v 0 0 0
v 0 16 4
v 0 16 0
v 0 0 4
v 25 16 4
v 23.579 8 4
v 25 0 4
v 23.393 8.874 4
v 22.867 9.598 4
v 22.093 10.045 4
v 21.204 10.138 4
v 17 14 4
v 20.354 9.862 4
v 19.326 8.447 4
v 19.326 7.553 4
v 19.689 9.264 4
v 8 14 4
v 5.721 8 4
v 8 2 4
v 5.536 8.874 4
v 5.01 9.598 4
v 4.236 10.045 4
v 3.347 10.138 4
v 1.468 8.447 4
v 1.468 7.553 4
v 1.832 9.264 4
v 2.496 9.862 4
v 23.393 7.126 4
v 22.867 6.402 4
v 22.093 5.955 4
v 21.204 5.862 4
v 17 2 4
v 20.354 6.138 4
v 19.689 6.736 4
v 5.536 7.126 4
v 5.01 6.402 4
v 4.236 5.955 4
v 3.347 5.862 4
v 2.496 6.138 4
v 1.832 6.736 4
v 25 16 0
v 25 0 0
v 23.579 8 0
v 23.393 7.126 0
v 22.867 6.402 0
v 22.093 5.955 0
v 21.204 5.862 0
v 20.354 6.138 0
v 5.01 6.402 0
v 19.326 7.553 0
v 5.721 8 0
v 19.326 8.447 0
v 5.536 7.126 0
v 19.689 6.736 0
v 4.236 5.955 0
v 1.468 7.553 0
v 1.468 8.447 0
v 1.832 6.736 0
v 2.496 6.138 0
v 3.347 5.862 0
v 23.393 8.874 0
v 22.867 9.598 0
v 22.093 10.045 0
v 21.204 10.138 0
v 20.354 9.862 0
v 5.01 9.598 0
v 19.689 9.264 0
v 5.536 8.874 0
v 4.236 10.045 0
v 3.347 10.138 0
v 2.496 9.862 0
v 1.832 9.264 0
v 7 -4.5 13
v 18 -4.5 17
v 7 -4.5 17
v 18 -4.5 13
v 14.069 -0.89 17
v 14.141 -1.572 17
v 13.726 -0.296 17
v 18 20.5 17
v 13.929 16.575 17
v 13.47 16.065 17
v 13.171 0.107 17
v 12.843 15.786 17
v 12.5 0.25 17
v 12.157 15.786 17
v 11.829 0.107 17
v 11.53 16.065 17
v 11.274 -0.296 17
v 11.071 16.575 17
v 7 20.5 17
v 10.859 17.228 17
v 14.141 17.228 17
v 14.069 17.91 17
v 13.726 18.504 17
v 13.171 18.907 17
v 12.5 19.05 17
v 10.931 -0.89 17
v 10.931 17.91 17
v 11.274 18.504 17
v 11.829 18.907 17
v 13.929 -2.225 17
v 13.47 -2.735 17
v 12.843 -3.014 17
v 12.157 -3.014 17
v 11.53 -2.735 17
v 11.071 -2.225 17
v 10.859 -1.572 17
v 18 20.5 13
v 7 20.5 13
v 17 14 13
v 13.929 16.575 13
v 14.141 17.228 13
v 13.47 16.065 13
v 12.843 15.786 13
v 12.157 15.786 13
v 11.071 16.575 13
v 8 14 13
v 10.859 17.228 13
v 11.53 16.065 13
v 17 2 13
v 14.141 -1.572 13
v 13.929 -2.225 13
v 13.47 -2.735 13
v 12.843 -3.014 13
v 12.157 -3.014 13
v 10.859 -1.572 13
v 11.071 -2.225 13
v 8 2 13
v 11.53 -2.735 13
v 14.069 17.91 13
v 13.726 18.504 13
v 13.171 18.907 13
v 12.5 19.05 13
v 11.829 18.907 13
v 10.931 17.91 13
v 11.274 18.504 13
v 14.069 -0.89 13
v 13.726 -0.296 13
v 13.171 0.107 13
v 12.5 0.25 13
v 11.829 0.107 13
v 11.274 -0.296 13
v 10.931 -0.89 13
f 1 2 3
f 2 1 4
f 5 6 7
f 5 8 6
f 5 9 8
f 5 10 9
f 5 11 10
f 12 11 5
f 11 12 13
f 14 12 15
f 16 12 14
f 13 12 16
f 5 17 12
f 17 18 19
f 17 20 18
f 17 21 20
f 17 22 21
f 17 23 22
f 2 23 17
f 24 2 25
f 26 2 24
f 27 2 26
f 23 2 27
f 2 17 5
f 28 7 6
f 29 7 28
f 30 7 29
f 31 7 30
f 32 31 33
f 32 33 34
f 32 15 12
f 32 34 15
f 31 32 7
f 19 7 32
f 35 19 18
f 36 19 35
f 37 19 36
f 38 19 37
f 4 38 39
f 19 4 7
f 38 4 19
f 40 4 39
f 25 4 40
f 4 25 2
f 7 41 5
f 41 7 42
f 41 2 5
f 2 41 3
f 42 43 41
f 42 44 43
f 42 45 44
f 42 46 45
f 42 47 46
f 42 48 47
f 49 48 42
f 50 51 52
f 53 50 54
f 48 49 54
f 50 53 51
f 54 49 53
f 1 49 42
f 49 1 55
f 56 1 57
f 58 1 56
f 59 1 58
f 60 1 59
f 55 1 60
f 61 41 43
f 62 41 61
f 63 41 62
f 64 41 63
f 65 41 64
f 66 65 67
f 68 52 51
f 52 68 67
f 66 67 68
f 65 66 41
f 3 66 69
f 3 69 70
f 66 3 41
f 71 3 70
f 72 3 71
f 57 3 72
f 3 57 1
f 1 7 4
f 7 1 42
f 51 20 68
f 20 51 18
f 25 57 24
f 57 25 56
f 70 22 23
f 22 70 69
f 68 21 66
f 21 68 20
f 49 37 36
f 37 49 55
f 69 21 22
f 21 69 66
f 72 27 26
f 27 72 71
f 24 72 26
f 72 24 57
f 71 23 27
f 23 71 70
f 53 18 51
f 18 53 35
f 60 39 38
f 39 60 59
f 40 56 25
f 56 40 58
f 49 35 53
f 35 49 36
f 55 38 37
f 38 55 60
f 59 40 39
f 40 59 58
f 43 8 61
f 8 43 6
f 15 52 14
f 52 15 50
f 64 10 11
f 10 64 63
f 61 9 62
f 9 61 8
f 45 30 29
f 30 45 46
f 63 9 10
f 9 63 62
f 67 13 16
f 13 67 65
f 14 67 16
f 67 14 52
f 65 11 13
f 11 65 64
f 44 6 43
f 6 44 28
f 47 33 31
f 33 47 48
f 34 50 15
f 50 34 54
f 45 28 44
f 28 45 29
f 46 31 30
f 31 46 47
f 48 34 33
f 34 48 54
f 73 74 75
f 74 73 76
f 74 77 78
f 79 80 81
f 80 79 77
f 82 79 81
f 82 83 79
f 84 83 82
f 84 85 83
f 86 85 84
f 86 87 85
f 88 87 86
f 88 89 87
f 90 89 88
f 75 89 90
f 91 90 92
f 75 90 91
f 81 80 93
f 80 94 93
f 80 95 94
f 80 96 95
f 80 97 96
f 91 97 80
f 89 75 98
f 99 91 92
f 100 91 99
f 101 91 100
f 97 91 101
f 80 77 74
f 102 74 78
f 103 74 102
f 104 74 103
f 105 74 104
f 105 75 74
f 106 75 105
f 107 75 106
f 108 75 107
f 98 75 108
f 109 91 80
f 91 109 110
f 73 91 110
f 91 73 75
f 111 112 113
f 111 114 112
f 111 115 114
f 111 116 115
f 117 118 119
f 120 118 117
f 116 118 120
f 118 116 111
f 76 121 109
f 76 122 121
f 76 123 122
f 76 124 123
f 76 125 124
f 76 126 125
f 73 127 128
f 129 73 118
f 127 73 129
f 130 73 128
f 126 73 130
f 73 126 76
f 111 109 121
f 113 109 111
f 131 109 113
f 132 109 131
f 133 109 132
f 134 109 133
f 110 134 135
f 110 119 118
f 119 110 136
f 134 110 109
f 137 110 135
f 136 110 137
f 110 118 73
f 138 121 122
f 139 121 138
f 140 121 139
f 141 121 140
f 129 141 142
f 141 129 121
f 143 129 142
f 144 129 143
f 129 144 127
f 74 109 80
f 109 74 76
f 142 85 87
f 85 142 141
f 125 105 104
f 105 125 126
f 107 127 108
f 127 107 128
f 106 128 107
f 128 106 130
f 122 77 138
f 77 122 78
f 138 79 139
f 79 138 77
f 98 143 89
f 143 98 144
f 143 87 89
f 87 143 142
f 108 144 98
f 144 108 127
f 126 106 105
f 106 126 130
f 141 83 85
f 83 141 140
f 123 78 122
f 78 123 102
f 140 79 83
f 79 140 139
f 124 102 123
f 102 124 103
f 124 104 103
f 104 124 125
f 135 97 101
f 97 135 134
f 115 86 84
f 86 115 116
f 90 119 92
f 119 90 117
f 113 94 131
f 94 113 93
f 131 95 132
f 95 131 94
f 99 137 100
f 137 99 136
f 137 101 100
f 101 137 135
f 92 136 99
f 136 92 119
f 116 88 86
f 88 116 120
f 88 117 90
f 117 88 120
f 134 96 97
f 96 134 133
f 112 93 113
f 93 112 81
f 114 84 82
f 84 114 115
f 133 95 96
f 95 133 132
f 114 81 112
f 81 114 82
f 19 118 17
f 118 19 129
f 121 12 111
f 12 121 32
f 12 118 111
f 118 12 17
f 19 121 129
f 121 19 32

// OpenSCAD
WallThickness = 4;

BaseWidth = 25;
BaseDepth = 16;
BaseHoleDiameter = 4.3;

SensorToBaseHeight = 13;

SensorHoleDistance = 18.8;
SensorHoleDiameter = 3.3;
SensorWidth = 25;
SensorDepth = 11;

translate([BaseWidth/2-SensorDepth/2+1, 2, WallThickness-0.1])
cube(size=[SensorDepth-2, BaseDepth-4, SensorToBaseHeight], center=false);


difference() {
    cube(size=[BaseWidth, BaseDepth, WallThickness], center=false);
    translate([BaseWidth/7, BaseDepth/2, 0])
    cylinder(h=WallThickness, d=BaseHoleDiameter, center=false, $fn=15);
    translate([BaseWidth/7*6, BaseDepth/2, 0])
    cylinder(h=WallThickness, d=BaseHoleDiameter, center=false, $fn=15);
    
}


translate([BaseWidth/2+SensorDepth/2, BaseDepth/2-SensorWidth/2, SensorToBaseHeight])
rotate([0, 0, 90])
difference() {
    cube(size=[SensorWidth, SensorDepth, WallThickness], center=false);
    translate([(SensorWidth-SensorHoleDistance)/2, SensorDepth/2, 0])
    cylinder(h=WallThickness, d=SensorHoleDiameter, center=false, $fn=15);
    translate([(SensorWidth-SensorHoleDistance)/2+SensorHoleDistance, SensorDepth/2, 0])
    cylinder(h=WallThickness, d=SensorHoleDiameter, center=false, $fn=15);
}



/*
WallThickness = 1.5;
BaseHeight = 123+WallThickness*2;
BaseWidth = 101+WallThickness*2;
BaseDepth = 30;
CornerRadius = 3;

LCDWidth = 80.5;
LCDHeight = 50.5;
LCDTopOffset = 9+WallThickness;
LCDLeftOffset = 9+WallThickness;

ResetButtonDiameter = 6;
ResetButtonBottomOffet = 8.5+WallThickness;
ResetButtonLeftOffet = 70.5+WallThickness;

RotaryEncoderDiameter = 8;
RotaryEncoderBottomOffet = 19+WallThickness;
RotaryEncoderLeftOffet = 87.5+WallThickness;

CardButtonDiameter = 6;
CardButtonBottomOffet = 44.5+WallThickness;
CardButtonLeftOffet = 78.5+WallThickness;

TFCardHeight = 2;
TFCardWidth = 14;
TFCardBottomOffset = 15+WallThickness;
TFCardFrontOffset = 19+WallThickness;

MountingHoleDiameter = 5.5;

module RoundedRectangle($Width=BaseWidth, $Depth=BaseDepth, $Radius=CornerRadius) 
{
    polygon(points = [[$Radius, 0], [$Width-$Radius, 0],[$Width, $Radius], [$Width, $Depth-$Radius], [$Width-$Radius, $Depth], [$Radius, $Depth], [0, $Depth-$Radius], [0, $Radius]], paths=[[0,1,2,3,4,5,6,7]]);
        
    translate([$Radius,$Radius,0]){
        circle(r=$Radius);
    }        
    translate([$Width-$Radius,$Radius,0]){
        circle(r=$Radius);
    }
    
    translate([$Width-$Radius,$Depth-$Radius,0]){ 
        circle(r=$Radius);
    }
   
    translate([$Radius,$Depth-$Radius,0]){ 
        circle(r=$Radius);
    }
}

module base3D($Width=BaseWidth, $Depth=BaseDepth, $Height=BaseHeight, $Radius=CornerRadius, $Thickness=WallThickness)
{
    difference()
    {
        linear_extrude(height = $Height, center = false, convexity = 0, twist = 0)
        RoundedRectangle($Width, $Depth, $Radius);
        translate([$Thickness, $Thickness, $Thickness]) {
        linear_extrude(height = $Height, center = false, convexity = 0, twist = 0)
        RoundedRectangle($Width-$Thickness*2, $Depth-$Thickness*2, $Radius);
        }
    }
}


difference()
{
    base3D(BaseWidth, BaseDepth, BaseHeight, CornerRadius, WallThickness);
    // Make back open
    translate([0, BaseDepth-WallThickness*2, 10])
        cube(size=[BaseWidth, BaseDepth, BaseHeight], center=false);

    translate([0, BaseDepth-WallThickness*2, 110])
    rotate([45, 0, 0])
        cube(size=[BaseWidth, BaseDepth, BaseHeight], center=false);

    translate([0, BaseDepth-WallThickness*2+3, 30])
    rotate([7, 0, 0])
        cube(size=[BaseWidth, BaseDepth, BaseHeight], center=false);
    
    // LCD window
    translate([LCDLeftOffset, WallThickness, BaseHeight-LCDHeight-LCDTopOffset])
    rotate([90, 0, 0])
        cube(size=[LCDWidth, LCDHeight, WallThickness], center=false);
    // Reset button
    translate([ResetButtonLeftOffet, WallThickness, ResetButtonBottomOffet])
    rotate([90, 0, 0])
        cylinder(h=WallThickness, d=ResetButtonDiameter, center=false, $fn=30);
    // Rotary Encoder
    translate([RotaryEncoderLeftOffet, WallThickness, RotaryEncoderBottomOffet])
    rotate([90, 0, 0])
        cylinder(h=WallThickness, d=RotaryEncoderDiameter, center=false, $fn=30);
    // Card-In Button
    translate([CardButtonLeftOffet, WallThickness, CardButtonBottomOffet])
    rotate([90, 0, 0])
        cylinder(h=WallThickness, d=CardButtonDiameter, center=false, $fn=30);
    // TF Card on the side
    translate([WallThickness,TFCardFrontOffset,TFCardBottomOffset])
    rotate([0, -90, 0])
        cube(size=[TFCardWidth, TFCardHeight, WallThickness], center=false);
    // Mouting holes for 2020
    translate([BaseWidth-WallThickness-MountingHoleDiameter, BaseDepth-WallThickness-MountingHoleDiameter])
        cylinder(h=WallThickness, d=MountingHoleDiameter, center=false, $fn=30);
    translate([BaseWidth/4*2, BaseDepth-WallThickness-MountingHoleDiameter])
        cylinder(h=WallThickness, d=MountingHoleDiameter, center=false, $fn=30);
    translate([WallThickness+MountingHoleDiameter, BaseDepth-WallThickness-MountingHoleDiameter])
        cylinder(h=WallThickness, d=MountingHoleDiameter, center=false, $fn=30);

    translate([BaseWidth-WallThickness-MountingHoleDiameter, WallThickness+MountingHoleDiameter])
        cylinder(h=WallThickness, d=MountingHoleDiameter, center=false, $fn=30);
    translate([BaseWidth/4*2, WallThickness+MountingHoleDiameter])
        cylinder(h=WallThickness, d=MountingHoleDiameter, center=false, $fn=30);
    translate([WallThickness+MountingHoleDiameter, WallThickness+MountingHoleDiameter])
        cylinder(h=WallThickness, d=MountingHoleDiameter, center=false, $fn=30);

}

    translate([64, 0, 52])
    rotate([90, 0, 0])
    linear_extrude(height = WallThickness/2){
        text("CARD IN", size=5, font="Arial Black");
    }

    translate([10, 0, 50])
    rotate([90, 0, 0])
    linear_extrude(height = WallThickness/2){
        text("DIY 12864", size=6, font="Arial Black");
    }

    translate([6, 0, 35])
    rotate([90, 0, 0])
    linear_extrude(height = WallThickness/2){
        text("IBE Group, Inc.", size=6, font="Arial Black");
    }
    translate([5, 0, 20])
    rotate([90, 0, 0])
    linear_extrude(height = WallThickness/2){
        text("Copyright© 2019", size=6, font="Arial Black");
    }

    translate([41.5, 0, 7.5])
    rotate([90, 0, 0])
    linear_extrude(height = WallThickness/2){
        text("RESET", size=5, font="Arial Black");
    }
*/
